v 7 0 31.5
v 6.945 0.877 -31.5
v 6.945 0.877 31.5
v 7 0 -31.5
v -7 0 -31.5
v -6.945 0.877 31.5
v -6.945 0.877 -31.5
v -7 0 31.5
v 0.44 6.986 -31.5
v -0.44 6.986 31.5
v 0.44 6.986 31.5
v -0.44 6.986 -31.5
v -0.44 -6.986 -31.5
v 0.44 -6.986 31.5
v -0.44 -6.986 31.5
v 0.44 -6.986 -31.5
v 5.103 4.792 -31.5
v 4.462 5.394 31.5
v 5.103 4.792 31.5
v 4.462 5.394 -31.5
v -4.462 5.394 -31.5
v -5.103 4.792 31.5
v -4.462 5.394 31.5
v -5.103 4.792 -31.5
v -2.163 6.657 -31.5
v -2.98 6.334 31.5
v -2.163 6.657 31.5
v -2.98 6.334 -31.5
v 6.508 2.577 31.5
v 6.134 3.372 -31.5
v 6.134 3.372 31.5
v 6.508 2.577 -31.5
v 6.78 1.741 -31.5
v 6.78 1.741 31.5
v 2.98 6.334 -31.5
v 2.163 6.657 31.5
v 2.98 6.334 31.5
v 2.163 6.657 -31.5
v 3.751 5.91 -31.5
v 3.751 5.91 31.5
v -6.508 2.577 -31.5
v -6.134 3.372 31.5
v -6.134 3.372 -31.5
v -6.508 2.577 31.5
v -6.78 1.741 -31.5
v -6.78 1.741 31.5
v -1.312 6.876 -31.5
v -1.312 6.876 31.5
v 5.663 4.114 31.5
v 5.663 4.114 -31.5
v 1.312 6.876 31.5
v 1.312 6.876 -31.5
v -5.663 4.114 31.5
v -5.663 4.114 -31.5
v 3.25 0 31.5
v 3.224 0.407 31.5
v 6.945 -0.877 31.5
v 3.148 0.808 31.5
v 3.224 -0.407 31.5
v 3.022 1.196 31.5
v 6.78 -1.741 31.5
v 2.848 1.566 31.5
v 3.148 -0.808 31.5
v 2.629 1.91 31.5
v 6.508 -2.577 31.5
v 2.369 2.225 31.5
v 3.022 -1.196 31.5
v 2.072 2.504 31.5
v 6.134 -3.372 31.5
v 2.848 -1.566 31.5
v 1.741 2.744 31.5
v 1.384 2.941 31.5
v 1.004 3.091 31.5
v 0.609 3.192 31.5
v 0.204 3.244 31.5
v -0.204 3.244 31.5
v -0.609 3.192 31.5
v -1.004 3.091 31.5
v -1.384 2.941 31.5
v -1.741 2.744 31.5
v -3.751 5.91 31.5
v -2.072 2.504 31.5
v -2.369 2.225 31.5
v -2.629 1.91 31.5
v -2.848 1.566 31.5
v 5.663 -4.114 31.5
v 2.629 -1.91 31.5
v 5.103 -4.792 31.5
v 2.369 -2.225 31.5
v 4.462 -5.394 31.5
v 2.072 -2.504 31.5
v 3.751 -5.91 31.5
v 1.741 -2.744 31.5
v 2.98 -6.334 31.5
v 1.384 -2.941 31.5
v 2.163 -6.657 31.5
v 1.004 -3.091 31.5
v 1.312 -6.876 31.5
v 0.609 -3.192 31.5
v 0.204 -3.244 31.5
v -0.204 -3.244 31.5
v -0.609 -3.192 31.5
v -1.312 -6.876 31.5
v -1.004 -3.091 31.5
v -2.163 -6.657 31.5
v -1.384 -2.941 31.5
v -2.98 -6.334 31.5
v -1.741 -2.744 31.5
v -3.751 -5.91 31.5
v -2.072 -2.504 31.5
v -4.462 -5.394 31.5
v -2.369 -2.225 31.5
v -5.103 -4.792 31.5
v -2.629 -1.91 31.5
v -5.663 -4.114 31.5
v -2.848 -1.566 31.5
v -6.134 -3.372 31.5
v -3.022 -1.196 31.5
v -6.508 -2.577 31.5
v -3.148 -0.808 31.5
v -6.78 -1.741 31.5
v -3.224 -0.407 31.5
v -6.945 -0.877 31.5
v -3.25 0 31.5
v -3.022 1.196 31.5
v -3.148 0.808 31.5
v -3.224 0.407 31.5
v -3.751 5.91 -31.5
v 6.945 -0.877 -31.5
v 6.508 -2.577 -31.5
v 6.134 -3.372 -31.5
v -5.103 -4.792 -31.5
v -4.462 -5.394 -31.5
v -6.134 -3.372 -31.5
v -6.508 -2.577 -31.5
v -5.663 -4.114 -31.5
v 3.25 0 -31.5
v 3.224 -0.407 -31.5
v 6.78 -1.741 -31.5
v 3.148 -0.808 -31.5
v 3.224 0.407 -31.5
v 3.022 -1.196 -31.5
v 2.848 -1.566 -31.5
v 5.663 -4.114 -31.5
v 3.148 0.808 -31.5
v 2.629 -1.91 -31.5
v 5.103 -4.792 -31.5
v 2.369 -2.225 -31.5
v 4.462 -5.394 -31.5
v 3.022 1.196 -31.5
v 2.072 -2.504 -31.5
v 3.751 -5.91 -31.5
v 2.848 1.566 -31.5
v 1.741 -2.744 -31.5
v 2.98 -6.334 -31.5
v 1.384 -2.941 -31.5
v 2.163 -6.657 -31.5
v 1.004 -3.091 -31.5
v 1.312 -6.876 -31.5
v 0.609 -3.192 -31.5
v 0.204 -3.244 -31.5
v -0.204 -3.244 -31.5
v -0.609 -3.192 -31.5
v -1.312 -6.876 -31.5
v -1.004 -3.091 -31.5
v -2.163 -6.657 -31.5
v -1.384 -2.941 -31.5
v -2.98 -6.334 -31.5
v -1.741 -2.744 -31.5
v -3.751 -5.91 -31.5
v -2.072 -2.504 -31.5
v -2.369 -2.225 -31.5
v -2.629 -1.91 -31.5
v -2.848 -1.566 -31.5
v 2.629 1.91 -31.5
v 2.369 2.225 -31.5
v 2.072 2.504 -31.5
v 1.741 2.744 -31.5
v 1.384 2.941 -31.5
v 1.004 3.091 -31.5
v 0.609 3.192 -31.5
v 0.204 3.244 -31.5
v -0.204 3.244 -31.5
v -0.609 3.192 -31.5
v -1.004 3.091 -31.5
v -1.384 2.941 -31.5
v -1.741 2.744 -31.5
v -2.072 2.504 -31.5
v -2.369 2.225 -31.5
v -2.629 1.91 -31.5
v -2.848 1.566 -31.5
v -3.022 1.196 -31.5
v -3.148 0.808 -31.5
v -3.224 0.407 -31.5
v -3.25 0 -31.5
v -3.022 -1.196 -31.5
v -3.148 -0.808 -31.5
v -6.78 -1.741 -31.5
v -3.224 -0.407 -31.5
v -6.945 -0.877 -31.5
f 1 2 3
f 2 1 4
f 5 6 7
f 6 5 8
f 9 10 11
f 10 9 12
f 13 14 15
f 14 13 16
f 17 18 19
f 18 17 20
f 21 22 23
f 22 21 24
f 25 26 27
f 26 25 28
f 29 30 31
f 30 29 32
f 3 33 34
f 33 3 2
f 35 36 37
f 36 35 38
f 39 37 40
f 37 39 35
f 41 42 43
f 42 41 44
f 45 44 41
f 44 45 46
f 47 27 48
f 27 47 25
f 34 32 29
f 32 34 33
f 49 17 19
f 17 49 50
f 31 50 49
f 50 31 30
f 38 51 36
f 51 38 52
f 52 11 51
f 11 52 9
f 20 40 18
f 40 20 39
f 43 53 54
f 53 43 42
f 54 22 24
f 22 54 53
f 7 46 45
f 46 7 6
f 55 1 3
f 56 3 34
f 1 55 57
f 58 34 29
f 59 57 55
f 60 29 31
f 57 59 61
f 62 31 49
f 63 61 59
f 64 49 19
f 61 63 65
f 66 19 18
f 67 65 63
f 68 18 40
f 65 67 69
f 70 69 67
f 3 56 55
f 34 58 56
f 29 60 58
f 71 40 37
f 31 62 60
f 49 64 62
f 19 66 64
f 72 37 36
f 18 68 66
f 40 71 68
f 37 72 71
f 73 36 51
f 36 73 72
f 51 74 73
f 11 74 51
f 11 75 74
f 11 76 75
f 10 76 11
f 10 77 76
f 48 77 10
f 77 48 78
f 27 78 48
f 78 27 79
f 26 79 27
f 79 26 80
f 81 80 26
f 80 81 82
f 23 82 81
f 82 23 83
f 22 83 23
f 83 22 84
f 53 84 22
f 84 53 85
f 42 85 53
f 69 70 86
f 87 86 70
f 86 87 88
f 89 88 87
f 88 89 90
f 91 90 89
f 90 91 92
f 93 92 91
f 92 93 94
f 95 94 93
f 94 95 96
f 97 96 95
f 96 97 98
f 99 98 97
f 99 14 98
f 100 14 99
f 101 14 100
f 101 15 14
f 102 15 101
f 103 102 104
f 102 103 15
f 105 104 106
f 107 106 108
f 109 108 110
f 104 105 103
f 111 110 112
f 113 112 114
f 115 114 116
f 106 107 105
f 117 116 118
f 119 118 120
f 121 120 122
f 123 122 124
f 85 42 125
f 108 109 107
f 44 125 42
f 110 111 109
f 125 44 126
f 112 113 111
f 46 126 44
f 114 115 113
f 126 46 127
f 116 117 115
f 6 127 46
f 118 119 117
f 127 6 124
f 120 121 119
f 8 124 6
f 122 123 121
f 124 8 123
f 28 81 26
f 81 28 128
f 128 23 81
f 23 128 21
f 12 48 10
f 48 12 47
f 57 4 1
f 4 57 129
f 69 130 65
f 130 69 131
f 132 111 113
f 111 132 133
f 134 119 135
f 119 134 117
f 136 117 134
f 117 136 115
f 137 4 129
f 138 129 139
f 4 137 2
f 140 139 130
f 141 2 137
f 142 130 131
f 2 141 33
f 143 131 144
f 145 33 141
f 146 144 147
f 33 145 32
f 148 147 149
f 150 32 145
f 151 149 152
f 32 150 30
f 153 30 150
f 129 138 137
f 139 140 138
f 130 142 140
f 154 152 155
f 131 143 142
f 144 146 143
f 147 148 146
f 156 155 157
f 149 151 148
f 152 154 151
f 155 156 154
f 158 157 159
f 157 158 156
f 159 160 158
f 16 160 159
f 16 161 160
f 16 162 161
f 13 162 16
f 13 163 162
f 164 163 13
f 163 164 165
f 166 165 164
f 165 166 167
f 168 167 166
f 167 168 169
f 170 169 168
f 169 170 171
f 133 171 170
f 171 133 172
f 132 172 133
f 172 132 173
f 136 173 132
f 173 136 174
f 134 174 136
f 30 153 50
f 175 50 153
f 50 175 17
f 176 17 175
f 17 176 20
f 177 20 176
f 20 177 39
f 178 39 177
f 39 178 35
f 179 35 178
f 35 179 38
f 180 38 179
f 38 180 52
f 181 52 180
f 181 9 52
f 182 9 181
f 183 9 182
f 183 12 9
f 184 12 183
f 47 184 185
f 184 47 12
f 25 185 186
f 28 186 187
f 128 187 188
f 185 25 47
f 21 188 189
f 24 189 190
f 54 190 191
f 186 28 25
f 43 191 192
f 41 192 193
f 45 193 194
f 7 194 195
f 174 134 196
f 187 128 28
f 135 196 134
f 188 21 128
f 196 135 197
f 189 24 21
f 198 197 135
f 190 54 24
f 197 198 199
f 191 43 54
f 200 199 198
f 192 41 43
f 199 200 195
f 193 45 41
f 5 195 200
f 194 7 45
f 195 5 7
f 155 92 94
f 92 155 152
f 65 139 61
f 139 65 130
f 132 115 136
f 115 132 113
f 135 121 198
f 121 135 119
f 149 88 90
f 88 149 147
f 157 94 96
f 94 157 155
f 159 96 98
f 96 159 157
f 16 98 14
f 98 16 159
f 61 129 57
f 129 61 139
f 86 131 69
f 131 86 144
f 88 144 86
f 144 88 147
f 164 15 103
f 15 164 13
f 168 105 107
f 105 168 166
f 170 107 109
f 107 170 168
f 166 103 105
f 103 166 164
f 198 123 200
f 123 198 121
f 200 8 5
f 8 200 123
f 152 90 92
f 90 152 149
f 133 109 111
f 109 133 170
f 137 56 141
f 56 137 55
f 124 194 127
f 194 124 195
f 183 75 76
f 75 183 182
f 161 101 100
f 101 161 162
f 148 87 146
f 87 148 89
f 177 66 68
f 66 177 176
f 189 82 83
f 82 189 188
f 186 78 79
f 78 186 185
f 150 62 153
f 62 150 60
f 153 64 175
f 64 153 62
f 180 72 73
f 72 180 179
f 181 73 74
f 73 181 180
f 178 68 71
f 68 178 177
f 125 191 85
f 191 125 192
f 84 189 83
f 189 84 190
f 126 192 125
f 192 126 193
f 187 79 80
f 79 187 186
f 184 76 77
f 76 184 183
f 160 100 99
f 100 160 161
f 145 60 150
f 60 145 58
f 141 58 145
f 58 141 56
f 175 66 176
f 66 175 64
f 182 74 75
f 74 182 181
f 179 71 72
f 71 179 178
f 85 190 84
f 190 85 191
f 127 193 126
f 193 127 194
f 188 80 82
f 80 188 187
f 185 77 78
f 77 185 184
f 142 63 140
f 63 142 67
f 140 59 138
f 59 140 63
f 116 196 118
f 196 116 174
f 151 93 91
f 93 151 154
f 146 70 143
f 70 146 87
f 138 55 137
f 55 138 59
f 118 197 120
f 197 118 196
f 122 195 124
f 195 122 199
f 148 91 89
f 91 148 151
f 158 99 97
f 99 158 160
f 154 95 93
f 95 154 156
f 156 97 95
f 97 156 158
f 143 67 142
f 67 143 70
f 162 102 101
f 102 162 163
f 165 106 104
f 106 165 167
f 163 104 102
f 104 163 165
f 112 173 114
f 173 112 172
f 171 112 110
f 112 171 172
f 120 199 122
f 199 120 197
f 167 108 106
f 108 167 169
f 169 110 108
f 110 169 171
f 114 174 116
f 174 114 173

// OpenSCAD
$fn = 50;


difference() {
	union() {
		translate(v = [0, 0, -31.5000000000]) {
			cylinder(h = 63, r = 7.0000000000);
		}
	}
	union() {
		translate(v = [0, 0, -100.0000000000]) {
			cylinder(h = 200, r = 3.2500000000);
		}
	}
}
